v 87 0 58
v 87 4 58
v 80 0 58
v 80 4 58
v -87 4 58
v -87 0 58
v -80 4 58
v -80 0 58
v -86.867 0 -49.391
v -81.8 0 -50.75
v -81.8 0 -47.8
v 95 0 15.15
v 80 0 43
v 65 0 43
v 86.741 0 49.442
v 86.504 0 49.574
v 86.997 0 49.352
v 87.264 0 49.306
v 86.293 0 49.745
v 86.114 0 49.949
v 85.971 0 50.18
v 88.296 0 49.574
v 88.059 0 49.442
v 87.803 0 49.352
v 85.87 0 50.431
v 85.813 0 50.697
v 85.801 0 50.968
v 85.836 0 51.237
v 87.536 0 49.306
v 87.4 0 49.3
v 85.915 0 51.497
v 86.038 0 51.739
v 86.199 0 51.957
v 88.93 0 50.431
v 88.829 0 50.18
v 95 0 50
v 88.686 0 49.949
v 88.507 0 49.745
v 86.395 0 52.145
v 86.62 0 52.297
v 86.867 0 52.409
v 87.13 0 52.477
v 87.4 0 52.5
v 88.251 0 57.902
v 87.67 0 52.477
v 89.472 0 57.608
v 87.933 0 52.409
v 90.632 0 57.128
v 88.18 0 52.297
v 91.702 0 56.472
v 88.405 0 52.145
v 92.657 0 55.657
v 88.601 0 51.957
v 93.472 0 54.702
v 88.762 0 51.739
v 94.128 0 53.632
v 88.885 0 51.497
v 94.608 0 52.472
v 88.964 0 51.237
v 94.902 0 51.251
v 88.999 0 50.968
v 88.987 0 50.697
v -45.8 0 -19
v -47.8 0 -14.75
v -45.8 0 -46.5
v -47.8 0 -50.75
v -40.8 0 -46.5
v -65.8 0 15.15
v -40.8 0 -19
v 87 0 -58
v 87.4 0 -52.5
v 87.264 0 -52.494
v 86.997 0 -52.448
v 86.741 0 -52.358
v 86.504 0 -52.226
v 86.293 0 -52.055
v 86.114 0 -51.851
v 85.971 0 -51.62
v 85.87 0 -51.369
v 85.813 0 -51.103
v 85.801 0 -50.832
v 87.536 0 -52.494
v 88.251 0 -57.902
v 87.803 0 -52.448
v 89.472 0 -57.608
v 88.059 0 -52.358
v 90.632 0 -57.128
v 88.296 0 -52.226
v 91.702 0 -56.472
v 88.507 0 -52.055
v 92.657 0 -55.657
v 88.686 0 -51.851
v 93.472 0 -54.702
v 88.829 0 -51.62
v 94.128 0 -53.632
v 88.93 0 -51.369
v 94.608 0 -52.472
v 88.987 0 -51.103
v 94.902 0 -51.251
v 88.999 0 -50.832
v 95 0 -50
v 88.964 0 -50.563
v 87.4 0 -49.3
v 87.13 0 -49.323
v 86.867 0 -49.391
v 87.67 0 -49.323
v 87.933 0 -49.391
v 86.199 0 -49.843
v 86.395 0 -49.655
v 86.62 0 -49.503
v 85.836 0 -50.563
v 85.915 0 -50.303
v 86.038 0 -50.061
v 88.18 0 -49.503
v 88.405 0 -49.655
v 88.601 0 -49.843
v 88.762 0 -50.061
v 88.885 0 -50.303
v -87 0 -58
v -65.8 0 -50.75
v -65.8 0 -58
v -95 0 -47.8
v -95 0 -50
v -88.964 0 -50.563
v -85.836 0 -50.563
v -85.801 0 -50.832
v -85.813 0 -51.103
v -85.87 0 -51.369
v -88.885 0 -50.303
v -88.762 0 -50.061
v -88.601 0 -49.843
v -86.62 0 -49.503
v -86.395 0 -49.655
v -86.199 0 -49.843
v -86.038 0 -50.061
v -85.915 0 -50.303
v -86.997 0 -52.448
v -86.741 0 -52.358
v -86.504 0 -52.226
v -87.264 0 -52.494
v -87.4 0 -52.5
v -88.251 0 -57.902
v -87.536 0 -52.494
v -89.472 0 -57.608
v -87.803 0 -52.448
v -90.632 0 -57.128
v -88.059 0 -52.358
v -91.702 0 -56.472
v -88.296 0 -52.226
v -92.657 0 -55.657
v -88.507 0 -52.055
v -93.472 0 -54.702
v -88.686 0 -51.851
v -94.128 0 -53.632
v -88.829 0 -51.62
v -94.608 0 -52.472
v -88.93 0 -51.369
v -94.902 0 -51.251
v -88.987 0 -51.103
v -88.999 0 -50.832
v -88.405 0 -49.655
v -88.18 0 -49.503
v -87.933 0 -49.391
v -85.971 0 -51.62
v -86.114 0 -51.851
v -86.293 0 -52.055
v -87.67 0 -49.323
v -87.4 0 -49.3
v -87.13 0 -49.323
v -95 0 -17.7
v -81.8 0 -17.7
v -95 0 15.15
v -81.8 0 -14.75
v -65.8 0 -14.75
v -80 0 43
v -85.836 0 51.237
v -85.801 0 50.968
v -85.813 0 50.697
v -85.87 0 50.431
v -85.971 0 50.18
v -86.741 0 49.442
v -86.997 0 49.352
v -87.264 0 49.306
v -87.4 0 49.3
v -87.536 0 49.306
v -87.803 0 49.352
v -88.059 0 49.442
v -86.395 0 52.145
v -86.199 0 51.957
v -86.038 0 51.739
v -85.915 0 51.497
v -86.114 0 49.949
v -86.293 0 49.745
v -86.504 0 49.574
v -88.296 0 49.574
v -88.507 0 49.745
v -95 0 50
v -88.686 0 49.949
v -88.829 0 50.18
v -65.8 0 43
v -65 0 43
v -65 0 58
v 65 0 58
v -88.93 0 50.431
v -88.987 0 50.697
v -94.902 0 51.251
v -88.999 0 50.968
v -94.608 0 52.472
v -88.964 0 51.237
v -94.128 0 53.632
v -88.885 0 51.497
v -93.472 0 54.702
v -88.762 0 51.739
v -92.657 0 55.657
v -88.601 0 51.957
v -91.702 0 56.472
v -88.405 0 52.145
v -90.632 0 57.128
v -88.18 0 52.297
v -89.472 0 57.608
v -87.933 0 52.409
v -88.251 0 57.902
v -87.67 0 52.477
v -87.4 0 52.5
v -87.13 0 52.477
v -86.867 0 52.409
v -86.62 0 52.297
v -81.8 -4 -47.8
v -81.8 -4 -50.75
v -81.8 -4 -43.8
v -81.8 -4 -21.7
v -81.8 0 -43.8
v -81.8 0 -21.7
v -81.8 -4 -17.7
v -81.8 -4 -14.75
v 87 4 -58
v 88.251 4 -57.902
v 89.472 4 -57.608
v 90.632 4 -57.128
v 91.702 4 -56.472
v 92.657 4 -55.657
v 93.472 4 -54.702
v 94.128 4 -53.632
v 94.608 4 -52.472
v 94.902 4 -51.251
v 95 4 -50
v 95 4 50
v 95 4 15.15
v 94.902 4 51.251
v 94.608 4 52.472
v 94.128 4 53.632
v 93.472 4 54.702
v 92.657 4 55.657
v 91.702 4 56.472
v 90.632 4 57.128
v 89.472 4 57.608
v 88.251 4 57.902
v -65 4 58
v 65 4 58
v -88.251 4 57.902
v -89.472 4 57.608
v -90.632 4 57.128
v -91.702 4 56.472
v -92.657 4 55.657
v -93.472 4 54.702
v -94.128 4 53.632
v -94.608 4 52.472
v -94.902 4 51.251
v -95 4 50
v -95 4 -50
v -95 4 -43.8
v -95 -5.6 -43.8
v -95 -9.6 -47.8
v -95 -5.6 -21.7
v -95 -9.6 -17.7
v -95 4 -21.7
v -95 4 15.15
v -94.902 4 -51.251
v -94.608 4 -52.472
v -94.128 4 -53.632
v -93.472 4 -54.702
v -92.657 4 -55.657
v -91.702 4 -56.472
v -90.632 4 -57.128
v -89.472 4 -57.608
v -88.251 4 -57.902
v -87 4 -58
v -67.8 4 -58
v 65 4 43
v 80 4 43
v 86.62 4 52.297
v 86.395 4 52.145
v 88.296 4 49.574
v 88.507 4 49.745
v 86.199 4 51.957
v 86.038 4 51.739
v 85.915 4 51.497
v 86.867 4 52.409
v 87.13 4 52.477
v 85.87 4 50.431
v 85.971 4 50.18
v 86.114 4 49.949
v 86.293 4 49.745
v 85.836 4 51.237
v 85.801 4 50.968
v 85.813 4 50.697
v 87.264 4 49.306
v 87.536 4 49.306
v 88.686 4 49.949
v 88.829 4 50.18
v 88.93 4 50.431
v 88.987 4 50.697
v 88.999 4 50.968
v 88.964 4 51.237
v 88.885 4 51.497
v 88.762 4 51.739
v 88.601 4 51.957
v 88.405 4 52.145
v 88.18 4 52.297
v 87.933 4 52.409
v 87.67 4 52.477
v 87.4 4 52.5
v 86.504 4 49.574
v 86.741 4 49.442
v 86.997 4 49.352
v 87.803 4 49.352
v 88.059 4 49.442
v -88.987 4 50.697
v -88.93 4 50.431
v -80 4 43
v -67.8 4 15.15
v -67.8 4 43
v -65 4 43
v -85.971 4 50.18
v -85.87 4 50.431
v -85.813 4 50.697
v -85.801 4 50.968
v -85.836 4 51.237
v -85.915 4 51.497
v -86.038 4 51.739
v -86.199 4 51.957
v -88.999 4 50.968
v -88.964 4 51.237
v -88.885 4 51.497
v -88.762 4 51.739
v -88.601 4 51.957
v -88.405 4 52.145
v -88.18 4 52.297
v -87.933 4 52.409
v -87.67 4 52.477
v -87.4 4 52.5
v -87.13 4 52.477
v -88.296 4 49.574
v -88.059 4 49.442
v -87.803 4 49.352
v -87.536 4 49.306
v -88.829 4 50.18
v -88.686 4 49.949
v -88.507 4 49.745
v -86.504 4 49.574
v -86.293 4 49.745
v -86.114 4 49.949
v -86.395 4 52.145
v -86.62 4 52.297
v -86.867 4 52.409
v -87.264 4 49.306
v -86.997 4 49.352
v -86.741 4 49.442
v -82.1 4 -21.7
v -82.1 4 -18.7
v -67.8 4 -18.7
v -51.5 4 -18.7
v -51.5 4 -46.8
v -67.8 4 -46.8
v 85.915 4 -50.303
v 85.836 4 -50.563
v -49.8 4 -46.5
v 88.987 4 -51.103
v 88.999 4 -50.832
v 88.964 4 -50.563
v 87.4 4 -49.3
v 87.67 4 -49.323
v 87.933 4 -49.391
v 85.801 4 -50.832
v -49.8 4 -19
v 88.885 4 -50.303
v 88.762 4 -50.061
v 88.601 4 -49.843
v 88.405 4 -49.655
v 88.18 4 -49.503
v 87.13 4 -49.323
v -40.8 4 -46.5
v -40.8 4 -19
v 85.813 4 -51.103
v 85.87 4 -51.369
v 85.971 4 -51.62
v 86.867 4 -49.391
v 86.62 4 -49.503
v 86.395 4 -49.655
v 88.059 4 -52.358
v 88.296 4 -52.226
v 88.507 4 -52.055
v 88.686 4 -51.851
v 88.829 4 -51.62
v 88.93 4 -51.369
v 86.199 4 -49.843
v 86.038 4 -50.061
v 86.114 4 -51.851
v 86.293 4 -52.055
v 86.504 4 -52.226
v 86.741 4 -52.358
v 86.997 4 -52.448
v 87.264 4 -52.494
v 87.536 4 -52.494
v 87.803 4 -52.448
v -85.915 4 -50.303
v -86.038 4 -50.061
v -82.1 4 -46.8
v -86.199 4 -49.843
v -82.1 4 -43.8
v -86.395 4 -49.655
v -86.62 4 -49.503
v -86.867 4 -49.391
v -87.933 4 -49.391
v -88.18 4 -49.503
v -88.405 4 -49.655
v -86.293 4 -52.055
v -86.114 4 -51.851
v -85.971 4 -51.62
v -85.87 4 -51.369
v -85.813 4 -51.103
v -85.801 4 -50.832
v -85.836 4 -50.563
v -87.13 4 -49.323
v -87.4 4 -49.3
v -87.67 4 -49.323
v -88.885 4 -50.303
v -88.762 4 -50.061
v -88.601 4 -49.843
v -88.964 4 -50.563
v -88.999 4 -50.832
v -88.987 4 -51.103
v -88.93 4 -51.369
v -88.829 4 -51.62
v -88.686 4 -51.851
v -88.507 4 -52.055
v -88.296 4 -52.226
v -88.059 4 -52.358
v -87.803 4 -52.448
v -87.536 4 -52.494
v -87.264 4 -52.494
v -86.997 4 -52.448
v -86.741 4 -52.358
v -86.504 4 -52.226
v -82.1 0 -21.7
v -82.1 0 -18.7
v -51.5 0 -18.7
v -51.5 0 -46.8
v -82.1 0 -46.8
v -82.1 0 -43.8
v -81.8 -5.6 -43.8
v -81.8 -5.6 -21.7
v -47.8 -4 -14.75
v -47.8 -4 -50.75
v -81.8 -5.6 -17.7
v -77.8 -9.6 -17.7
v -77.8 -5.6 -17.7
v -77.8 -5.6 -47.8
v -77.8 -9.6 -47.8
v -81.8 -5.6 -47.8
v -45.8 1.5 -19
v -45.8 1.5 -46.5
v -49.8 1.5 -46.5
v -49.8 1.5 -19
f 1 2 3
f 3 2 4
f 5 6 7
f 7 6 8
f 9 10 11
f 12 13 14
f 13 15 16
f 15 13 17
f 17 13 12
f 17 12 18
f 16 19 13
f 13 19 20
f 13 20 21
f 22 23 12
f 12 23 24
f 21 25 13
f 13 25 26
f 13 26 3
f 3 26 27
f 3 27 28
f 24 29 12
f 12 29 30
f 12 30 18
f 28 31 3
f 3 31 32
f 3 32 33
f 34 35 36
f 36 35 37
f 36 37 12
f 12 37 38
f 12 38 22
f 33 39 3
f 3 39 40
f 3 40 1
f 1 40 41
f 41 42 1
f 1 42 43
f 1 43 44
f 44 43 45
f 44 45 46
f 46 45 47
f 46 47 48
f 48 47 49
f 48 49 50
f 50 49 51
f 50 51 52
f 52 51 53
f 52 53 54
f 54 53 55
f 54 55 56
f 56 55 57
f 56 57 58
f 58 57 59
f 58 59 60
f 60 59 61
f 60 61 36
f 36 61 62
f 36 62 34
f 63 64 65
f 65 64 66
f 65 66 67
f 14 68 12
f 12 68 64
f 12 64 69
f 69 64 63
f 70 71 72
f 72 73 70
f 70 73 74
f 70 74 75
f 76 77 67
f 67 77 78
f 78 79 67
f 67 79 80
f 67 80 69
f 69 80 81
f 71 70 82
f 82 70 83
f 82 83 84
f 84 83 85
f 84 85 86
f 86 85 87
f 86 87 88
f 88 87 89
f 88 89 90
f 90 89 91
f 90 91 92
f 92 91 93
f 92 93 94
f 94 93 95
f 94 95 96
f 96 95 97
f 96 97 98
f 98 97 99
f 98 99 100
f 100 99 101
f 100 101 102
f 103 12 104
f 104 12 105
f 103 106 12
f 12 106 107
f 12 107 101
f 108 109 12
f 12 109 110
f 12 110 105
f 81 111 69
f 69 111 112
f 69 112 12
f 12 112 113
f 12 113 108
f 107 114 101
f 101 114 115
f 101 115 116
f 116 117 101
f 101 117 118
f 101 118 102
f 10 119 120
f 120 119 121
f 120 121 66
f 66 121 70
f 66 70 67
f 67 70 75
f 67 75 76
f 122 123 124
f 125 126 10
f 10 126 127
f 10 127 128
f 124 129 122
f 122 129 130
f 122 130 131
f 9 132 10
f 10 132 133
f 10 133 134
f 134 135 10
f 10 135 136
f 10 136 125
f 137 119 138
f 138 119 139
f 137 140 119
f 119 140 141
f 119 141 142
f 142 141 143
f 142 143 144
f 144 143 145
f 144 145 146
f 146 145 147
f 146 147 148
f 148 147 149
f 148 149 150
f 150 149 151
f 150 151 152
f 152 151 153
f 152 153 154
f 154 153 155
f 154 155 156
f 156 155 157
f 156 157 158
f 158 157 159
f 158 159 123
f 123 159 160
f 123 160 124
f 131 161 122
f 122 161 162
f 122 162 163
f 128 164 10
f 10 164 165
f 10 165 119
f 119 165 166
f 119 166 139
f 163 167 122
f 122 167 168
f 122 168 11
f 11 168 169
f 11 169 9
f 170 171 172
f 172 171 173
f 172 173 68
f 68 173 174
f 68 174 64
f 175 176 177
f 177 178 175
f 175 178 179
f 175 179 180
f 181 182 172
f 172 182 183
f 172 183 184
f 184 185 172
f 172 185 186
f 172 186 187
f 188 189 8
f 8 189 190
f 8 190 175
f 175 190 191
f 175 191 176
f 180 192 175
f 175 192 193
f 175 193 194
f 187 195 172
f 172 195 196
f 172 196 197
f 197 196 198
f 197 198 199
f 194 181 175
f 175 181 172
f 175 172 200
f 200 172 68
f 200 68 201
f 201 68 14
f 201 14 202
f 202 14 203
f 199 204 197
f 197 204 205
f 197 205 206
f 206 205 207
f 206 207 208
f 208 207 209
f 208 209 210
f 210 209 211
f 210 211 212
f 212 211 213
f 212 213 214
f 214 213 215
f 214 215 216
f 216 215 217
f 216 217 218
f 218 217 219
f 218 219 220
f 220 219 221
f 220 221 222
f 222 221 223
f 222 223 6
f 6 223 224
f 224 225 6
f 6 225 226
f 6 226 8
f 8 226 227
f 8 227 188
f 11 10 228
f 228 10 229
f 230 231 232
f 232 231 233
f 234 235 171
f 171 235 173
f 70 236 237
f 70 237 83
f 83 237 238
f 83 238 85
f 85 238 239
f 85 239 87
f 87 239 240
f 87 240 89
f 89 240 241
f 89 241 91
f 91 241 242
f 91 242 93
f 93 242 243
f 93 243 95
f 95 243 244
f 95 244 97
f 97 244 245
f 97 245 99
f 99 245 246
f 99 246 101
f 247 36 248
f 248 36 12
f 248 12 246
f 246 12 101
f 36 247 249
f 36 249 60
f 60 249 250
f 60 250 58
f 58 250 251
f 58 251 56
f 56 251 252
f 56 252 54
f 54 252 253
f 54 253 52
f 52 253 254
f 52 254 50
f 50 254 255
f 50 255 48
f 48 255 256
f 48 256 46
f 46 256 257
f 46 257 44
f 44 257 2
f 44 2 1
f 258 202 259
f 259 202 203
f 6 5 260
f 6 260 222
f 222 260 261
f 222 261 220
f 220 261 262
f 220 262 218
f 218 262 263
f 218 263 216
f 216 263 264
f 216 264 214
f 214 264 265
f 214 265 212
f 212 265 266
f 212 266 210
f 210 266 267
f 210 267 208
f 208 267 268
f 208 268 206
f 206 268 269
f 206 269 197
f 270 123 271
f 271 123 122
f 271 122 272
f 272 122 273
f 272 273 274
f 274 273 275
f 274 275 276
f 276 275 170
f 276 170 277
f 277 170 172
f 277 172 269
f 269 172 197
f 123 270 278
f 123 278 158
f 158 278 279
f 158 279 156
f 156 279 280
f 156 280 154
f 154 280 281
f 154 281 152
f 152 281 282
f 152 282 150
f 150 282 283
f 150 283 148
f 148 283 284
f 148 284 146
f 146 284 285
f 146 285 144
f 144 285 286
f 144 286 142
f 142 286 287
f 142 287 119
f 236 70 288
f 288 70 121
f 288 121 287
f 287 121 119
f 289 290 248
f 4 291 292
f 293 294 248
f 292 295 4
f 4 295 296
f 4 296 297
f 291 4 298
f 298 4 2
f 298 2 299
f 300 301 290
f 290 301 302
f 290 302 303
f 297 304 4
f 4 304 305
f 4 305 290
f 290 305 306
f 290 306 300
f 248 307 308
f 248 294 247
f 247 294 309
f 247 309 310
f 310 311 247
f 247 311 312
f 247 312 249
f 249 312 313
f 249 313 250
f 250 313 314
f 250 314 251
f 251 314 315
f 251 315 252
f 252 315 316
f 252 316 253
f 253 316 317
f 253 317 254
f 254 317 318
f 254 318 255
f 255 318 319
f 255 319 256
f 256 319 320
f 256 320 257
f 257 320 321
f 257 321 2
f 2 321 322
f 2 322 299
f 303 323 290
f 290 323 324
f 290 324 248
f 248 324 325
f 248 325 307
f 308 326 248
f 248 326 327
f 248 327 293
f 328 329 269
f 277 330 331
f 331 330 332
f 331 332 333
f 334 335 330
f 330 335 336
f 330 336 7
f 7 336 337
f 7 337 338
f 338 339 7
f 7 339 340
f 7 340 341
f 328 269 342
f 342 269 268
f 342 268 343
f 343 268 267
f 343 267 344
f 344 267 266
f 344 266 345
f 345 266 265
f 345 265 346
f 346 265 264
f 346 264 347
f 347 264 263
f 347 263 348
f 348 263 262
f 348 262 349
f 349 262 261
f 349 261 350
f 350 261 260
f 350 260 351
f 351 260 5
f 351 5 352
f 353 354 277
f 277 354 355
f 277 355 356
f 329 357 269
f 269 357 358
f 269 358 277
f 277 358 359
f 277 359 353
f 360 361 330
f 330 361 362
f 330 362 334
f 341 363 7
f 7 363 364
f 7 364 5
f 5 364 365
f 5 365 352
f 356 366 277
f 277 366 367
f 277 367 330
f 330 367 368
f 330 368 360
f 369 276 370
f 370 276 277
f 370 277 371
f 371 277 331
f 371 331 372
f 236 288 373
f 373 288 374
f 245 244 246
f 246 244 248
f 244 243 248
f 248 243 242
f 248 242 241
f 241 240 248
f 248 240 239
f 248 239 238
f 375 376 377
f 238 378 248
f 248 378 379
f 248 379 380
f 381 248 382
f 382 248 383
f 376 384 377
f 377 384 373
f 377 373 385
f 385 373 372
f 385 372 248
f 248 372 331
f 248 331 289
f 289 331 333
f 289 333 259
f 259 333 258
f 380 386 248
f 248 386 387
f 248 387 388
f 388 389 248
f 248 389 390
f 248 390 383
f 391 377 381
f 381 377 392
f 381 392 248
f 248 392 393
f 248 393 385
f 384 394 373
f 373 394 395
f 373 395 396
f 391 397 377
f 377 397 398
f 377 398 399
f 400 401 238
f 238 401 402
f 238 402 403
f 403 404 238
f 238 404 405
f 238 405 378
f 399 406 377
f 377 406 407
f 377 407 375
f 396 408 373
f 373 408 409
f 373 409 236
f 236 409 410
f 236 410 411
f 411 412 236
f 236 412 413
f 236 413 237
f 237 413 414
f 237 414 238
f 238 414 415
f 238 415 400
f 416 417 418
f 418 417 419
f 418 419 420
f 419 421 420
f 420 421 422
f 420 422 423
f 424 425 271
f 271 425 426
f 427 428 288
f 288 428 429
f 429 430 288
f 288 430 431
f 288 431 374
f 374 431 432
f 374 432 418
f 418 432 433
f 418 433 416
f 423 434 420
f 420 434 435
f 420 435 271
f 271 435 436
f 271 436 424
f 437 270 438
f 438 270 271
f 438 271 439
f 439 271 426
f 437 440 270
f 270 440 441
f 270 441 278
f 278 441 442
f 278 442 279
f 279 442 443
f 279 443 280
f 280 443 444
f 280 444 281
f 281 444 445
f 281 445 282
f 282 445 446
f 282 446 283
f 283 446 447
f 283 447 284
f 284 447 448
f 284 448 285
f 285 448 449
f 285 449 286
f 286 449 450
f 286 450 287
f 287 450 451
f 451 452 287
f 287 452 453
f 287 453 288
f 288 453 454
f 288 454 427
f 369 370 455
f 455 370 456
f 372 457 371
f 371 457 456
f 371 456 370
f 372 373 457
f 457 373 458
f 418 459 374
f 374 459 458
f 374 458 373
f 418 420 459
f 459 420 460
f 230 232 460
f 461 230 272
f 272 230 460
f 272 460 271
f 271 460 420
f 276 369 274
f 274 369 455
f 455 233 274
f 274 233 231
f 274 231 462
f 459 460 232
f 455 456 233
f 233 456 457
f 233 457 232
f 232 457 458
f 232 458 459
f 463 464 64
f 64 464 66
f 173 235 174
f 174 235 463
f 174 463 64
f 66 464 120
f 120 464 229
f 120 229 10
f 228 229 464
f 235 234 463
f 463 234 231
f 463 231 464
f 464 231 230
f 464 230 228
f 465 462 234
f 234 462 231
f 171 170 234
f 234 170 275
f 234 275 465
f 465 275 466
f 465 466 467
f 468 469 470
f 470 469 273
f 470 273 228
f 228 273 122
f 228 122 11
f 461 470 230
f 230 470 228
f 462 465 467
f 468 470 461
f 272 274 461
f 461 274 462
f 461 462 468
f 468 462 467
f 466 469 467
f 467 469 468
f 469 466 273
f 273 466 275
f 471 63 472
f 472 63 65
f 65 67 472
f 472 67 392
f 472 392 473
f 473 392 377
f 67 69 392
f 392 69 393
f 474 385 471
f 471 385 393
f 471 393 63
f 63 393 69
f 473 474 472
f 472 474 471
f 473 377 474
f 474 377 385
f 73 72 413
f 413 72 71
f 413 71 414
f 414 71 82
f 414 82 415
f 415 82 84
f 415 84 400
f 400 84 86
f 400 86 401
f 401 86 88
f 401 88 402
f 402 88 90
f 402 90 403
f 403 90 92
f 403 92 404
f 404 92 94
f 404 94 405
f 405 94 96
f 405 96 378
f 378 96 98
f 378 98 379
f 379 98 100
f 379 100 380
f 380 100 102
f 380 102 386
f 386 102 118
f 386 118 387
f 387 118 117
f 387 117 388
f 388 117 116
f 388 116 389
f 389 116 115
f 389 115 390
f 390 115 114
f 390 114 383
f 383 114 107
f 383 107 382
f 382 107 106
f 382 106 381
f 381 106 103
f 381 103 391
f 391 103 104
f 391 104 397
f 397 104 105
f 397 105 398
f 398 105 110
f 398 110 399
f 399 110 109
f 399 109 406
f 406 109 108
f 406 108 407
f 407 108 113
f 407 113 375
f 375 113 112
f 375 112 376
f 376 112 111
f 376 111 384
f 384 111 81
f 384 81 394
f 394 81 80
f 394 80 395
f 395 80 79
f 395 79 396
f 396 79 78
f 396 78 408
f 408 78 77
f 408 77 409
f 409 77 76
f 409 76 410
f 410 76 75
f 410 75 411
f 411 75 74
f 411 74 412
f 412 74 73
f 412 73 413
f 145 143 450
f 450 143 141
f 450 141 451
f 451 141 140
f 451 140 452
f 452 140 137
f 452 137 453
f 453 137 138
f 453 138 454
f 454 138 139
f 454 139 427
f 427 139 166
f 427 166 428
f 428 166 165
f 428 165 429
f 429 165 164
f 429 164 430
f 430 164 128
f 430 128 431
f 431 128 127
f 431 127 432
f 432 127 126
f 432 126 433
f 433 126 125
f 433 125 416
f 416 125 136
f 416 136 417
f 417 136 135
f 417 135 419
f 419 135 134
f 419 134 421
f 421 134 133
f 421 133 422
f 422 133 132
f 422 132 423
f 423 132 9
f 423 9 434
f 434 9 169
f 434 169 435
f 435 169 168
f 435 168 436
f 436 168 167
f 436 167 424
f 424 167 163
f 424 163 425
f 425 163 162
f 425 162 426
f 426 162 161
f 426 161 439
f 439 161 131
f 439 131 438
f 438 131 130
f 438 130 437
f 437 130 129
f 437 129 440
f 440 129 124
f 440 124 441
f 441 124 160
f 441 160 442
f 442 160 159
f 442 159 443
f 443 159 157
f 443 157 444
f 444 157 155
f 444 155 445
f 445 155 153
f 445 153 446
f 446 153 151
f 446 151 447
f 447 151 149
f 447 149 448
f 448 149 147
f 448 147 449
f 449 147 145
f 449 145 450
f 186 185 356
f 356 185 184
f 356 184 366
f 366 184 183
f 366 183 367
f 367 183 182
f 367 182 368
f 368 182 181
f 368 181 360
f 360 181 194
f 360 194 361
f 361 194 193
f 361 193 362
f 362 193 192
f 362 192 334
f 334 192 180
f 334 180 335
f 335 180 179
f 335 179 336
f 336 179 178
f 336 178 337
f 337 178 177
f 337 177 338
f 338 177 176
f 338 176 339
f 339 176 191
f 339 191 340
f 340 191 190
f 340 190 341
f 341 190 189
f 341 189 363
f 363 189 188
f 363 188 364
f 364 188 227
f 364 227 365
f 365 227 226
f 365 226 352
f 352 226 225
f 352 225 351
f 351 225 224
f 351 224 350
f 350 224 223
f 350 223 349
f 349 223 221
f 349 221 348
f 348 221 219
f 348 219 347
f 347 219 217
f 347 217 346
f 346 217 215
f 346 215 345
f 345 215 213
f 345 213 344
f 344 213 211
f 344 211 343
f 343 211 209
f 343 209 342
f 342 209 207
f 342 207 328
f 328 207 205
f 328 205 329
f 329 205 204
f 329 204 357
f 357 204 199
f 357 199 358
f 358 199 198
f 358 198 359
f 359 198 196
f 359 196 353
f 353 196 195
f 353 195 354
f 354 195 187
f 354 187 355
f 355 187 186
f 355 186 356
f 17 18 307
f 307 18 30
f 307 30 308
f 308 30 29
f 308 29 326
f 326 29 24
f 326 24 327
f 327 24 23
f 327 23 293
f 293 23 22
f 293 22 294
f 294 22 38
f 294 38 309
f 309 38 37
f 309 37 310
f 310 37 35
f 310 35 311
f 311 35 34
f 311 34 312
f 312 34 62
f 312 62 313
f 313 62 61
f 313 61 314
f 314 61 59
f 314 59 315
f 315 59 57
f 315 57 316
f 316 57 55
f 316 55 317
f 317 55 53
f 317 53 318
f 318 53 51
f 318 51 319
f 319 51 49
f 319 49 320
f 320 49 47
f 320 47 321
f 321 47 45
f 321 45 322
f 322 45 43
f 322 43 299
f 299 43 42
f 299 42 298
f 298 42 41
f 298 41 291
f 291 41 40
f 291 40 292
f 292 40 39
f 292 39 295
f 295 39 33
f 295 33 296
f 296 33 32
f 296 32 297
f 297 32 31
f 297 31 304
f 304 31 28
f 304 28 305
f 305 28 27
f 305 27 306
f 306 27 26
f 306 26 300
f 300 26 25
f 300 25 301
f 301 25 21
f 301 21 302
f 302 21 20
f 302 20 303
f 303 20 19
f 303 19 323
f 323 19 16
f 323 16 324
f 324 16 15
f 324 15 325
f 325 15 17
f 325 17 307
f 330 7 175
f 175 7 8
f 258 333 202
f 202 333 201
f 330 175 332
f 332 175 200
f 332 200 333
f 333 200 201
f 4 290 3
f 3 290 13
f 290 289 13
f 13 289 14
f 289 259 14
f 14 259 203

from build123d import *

# Parameters (mm, degrees)
SKETCH_1_W          = 272.533053494
SKETCH_1_H          = 136.587531522
EXTRUDE_1_DEPTH     = 4
SKETCH_2_W          = 272.533053494
SKETCH_2_H          = 136.587531522
CUT_EXTRUDE_1_DEPTH = 4
CUT_EXTRUDE_2_DEPTH = 4
CUT_EXTRUDE_3_DEPTH = 4
SKETCH_5_W          = 34
SKETCH_5_H          = 36
EXTRUDE_2_DEPTH     = 4
SKETCH_6_W          = 13.2
SKETCH_6_H          = 4
EXTRUDE_3_DEPTH     = 5.6
SKETCH_7_W          = 17.2
SKETCH_7_H          = 30.1
EXTRUDE_4_DEPTH     = 4
SKETCH_8_W          = 5
SKETCH_8_H          = 27.5
CUT_EXTRUDE_4_DEPTH = 4
SKETCH_9_W          = 27.5
SKETCH_9_H          = 2.5
CUT_EXTRUDE_5_DEPTH = 4
SKETCH_10_R         = 1.6
CUT_EXTRUDE_6_DEPTH = 10
SKETCH_13_W         = 15
SKETCH_13_H         = 15
CUT_EXTRUDE_7_DEPTH = 5


with BuildPart() as part:
    # 草图1 → 凸台-拉伸1 (new body)
    with BuildSketch(Plane(origin=(0, 0, 0), x_dir=(1, 0, 0), z_dir=(0, 1, 0))):
        Rectangle(SKETCH_1_W, SKETCH_1_H)
    extrude(amount=EXTRUDE_1_DEPTH)

    # 草图2 → 切除-拉伸1 (cut)
    with BuildSketch(Plane(origin=(0, 4, 0), x_dir=(1, 0, 0), z_dir=(0, 1, 0))):
        Rectangle(SKETCH_2_W, SKETCH_2_H)
        with BuildLine():
            Line((-87, 58), (87, 58))
            ThreePointArc((87, 58), (92.656854249, 55.656854249), (95, 50))
            Line((95, 50), (95, -50))
            ThreePointArc((95, -50), (92.656854249, -55.656854249), (87, -58))
            Line((87, -58), (-87, -58))
            ThreePointArc((-87, -58), (-92.656854249, -55.656854249), (-95, -50))
            Line((-95, -50), (-95, 50))
            ThreePointArc((-95, 50), (-92.656854249, 55.656854249), (-87, 58))
        make_face(mode=Mode.SUBTRACT)
    extrude(amount=-CUT_EXTRUDE_1_DEPTH, mode=Mode.SUBTRACT)

    # 草图3 → 切除-拉伸2 (cut)
    with BuildSketch(Plane.XZ):
        Polygon((-95, -22), (-81.8, -22), (-81.8, -19), (-51.8, -19), (-51.8, -46.5), (-81.8, -46.5), (-81.8, -43.5), (-95, -43.5), align=None)
    extrude(amount=-CUT_EXTRUDE_2_DEPTH, mode=Mode.SUBTRACT)

    # 草图4 → 切除-拉伸3 (cut)
    with BuildSketch(Plane.XZ):
        Polygon((-51.5, -18.7), (-51.5, -46.8), (-82.1, -46.8), (-82.1, -43.8), (-95, -43.8), (-95, -21.7), (-82.1, -21.7), (-82.1, -18.7), align=None)
    extrude(amount=-CUT_EXTRUDE_3_DEPTH, mode=Mode.SUBTRACT)

    # 草图5 → 凸台-拉伸2 (add)
    with BuildSketch(Plane.XZ):
        with Locations((-64.8, -32.75)):
            Rectangle(SKETCH_5_W, SKETCH_5_H)
    extrude(amount=EXTRUDE_2_DEPTH)

    # 草图6 → 凸台-拉伸3 (add)
    with BuildSketch(Plane.XZ):
        with Locations((-88.4, -19.7)):
            Rectangle(SKETCH_6_W, SKETCH_6_H)
        with Locations((-88.4, -45.8)):
            Rectangle(SKETCH_6_W, SKETCH_6_H)
    extrude(amount=EXTRUDE_3_DEPTH)

    # 草图7 → 凸台-拉伸4 (add)
    with BuildSketch(Plane.XZ.offset(5.6)):
        with Locations((-86.4, -32.75)):
            Rectangle(SKETCH_7_W, SKETCH_7_H)
    extrude(amount=EXTRUDE_4_DEPTH)

    # 草图8 → 切除-拉伸4 (cut)
    with BuildSketch(Plane(origin=(0, 4, 0), x_dir=(1, 0, 0), z_dir=(0, 1, 0))):
        with Locations((-43.3, 32.75)):
            Rectangle(SKETCH_8_W, SKETCH_8_H)
    extrude(amount=-CUT_EXTRUDE_4_DEPTH, mode=Mode.SUBTRACT)

    # 草图9 → 切除-拉伸5 (cut)
    with BuildSketch(Plane(origin=(-45.8, 0, 0), x_dir=(0, 0, -1), z_dir=(1, 0, 0))):
        with Locations((32.75, 2.75)):
            Rectangle(SKETCH_9_W, SKETCH_9_H)
    extrude(amount=-CUT_EXTRUDE_5_DEPTH, mode=Mode.SUBTRACT)

    # 草图10 → 切除-拉伸6 (cut)
    with BuildSketch(Plane(origin=(0, 4, 0), x_dir=(1, 0, 0), z_dir=(0, 1, 0))):
        with Locations(Location((87.4, 50.9, 0), (0, 0, 270))):
            Circle(SKETCH_10_R)
        with Locations(Location((-87.4, 50.9, 0), (0, 0, 270))):
            Circle(SKETCH_10_R)
        with Locations(Location((-87.4, -50.9, 0), (0, 0, 270))):
            Circle(SKETCH_10_R)
        with Locations(Location((87.4, -50.9, 0), (0, 0, 270))):
            Circle(SKETCH_10_R)
    extrude(amount=-CUT_EXTRUDE_6_DEPTH, mode=Mode.SUBTRACT)

    # 草图13 → 切除-拉伸7 (cut, symmetric)
    with BuildSketch(Plane.XZ):
        with Locations((72.5, 50.5)):
            Rectangle(SKETCH_13_W, SKETCH_13_H)
        with Locations((-72.5, 50.5)):
            Rectangle(SKETCH_13_W, SKETCH_13_H)
    extrude(amount=CUT_EXTRUDE_7_DEPTH, both=True, mode=Mode.SUBTRACT)


solid = part.part
